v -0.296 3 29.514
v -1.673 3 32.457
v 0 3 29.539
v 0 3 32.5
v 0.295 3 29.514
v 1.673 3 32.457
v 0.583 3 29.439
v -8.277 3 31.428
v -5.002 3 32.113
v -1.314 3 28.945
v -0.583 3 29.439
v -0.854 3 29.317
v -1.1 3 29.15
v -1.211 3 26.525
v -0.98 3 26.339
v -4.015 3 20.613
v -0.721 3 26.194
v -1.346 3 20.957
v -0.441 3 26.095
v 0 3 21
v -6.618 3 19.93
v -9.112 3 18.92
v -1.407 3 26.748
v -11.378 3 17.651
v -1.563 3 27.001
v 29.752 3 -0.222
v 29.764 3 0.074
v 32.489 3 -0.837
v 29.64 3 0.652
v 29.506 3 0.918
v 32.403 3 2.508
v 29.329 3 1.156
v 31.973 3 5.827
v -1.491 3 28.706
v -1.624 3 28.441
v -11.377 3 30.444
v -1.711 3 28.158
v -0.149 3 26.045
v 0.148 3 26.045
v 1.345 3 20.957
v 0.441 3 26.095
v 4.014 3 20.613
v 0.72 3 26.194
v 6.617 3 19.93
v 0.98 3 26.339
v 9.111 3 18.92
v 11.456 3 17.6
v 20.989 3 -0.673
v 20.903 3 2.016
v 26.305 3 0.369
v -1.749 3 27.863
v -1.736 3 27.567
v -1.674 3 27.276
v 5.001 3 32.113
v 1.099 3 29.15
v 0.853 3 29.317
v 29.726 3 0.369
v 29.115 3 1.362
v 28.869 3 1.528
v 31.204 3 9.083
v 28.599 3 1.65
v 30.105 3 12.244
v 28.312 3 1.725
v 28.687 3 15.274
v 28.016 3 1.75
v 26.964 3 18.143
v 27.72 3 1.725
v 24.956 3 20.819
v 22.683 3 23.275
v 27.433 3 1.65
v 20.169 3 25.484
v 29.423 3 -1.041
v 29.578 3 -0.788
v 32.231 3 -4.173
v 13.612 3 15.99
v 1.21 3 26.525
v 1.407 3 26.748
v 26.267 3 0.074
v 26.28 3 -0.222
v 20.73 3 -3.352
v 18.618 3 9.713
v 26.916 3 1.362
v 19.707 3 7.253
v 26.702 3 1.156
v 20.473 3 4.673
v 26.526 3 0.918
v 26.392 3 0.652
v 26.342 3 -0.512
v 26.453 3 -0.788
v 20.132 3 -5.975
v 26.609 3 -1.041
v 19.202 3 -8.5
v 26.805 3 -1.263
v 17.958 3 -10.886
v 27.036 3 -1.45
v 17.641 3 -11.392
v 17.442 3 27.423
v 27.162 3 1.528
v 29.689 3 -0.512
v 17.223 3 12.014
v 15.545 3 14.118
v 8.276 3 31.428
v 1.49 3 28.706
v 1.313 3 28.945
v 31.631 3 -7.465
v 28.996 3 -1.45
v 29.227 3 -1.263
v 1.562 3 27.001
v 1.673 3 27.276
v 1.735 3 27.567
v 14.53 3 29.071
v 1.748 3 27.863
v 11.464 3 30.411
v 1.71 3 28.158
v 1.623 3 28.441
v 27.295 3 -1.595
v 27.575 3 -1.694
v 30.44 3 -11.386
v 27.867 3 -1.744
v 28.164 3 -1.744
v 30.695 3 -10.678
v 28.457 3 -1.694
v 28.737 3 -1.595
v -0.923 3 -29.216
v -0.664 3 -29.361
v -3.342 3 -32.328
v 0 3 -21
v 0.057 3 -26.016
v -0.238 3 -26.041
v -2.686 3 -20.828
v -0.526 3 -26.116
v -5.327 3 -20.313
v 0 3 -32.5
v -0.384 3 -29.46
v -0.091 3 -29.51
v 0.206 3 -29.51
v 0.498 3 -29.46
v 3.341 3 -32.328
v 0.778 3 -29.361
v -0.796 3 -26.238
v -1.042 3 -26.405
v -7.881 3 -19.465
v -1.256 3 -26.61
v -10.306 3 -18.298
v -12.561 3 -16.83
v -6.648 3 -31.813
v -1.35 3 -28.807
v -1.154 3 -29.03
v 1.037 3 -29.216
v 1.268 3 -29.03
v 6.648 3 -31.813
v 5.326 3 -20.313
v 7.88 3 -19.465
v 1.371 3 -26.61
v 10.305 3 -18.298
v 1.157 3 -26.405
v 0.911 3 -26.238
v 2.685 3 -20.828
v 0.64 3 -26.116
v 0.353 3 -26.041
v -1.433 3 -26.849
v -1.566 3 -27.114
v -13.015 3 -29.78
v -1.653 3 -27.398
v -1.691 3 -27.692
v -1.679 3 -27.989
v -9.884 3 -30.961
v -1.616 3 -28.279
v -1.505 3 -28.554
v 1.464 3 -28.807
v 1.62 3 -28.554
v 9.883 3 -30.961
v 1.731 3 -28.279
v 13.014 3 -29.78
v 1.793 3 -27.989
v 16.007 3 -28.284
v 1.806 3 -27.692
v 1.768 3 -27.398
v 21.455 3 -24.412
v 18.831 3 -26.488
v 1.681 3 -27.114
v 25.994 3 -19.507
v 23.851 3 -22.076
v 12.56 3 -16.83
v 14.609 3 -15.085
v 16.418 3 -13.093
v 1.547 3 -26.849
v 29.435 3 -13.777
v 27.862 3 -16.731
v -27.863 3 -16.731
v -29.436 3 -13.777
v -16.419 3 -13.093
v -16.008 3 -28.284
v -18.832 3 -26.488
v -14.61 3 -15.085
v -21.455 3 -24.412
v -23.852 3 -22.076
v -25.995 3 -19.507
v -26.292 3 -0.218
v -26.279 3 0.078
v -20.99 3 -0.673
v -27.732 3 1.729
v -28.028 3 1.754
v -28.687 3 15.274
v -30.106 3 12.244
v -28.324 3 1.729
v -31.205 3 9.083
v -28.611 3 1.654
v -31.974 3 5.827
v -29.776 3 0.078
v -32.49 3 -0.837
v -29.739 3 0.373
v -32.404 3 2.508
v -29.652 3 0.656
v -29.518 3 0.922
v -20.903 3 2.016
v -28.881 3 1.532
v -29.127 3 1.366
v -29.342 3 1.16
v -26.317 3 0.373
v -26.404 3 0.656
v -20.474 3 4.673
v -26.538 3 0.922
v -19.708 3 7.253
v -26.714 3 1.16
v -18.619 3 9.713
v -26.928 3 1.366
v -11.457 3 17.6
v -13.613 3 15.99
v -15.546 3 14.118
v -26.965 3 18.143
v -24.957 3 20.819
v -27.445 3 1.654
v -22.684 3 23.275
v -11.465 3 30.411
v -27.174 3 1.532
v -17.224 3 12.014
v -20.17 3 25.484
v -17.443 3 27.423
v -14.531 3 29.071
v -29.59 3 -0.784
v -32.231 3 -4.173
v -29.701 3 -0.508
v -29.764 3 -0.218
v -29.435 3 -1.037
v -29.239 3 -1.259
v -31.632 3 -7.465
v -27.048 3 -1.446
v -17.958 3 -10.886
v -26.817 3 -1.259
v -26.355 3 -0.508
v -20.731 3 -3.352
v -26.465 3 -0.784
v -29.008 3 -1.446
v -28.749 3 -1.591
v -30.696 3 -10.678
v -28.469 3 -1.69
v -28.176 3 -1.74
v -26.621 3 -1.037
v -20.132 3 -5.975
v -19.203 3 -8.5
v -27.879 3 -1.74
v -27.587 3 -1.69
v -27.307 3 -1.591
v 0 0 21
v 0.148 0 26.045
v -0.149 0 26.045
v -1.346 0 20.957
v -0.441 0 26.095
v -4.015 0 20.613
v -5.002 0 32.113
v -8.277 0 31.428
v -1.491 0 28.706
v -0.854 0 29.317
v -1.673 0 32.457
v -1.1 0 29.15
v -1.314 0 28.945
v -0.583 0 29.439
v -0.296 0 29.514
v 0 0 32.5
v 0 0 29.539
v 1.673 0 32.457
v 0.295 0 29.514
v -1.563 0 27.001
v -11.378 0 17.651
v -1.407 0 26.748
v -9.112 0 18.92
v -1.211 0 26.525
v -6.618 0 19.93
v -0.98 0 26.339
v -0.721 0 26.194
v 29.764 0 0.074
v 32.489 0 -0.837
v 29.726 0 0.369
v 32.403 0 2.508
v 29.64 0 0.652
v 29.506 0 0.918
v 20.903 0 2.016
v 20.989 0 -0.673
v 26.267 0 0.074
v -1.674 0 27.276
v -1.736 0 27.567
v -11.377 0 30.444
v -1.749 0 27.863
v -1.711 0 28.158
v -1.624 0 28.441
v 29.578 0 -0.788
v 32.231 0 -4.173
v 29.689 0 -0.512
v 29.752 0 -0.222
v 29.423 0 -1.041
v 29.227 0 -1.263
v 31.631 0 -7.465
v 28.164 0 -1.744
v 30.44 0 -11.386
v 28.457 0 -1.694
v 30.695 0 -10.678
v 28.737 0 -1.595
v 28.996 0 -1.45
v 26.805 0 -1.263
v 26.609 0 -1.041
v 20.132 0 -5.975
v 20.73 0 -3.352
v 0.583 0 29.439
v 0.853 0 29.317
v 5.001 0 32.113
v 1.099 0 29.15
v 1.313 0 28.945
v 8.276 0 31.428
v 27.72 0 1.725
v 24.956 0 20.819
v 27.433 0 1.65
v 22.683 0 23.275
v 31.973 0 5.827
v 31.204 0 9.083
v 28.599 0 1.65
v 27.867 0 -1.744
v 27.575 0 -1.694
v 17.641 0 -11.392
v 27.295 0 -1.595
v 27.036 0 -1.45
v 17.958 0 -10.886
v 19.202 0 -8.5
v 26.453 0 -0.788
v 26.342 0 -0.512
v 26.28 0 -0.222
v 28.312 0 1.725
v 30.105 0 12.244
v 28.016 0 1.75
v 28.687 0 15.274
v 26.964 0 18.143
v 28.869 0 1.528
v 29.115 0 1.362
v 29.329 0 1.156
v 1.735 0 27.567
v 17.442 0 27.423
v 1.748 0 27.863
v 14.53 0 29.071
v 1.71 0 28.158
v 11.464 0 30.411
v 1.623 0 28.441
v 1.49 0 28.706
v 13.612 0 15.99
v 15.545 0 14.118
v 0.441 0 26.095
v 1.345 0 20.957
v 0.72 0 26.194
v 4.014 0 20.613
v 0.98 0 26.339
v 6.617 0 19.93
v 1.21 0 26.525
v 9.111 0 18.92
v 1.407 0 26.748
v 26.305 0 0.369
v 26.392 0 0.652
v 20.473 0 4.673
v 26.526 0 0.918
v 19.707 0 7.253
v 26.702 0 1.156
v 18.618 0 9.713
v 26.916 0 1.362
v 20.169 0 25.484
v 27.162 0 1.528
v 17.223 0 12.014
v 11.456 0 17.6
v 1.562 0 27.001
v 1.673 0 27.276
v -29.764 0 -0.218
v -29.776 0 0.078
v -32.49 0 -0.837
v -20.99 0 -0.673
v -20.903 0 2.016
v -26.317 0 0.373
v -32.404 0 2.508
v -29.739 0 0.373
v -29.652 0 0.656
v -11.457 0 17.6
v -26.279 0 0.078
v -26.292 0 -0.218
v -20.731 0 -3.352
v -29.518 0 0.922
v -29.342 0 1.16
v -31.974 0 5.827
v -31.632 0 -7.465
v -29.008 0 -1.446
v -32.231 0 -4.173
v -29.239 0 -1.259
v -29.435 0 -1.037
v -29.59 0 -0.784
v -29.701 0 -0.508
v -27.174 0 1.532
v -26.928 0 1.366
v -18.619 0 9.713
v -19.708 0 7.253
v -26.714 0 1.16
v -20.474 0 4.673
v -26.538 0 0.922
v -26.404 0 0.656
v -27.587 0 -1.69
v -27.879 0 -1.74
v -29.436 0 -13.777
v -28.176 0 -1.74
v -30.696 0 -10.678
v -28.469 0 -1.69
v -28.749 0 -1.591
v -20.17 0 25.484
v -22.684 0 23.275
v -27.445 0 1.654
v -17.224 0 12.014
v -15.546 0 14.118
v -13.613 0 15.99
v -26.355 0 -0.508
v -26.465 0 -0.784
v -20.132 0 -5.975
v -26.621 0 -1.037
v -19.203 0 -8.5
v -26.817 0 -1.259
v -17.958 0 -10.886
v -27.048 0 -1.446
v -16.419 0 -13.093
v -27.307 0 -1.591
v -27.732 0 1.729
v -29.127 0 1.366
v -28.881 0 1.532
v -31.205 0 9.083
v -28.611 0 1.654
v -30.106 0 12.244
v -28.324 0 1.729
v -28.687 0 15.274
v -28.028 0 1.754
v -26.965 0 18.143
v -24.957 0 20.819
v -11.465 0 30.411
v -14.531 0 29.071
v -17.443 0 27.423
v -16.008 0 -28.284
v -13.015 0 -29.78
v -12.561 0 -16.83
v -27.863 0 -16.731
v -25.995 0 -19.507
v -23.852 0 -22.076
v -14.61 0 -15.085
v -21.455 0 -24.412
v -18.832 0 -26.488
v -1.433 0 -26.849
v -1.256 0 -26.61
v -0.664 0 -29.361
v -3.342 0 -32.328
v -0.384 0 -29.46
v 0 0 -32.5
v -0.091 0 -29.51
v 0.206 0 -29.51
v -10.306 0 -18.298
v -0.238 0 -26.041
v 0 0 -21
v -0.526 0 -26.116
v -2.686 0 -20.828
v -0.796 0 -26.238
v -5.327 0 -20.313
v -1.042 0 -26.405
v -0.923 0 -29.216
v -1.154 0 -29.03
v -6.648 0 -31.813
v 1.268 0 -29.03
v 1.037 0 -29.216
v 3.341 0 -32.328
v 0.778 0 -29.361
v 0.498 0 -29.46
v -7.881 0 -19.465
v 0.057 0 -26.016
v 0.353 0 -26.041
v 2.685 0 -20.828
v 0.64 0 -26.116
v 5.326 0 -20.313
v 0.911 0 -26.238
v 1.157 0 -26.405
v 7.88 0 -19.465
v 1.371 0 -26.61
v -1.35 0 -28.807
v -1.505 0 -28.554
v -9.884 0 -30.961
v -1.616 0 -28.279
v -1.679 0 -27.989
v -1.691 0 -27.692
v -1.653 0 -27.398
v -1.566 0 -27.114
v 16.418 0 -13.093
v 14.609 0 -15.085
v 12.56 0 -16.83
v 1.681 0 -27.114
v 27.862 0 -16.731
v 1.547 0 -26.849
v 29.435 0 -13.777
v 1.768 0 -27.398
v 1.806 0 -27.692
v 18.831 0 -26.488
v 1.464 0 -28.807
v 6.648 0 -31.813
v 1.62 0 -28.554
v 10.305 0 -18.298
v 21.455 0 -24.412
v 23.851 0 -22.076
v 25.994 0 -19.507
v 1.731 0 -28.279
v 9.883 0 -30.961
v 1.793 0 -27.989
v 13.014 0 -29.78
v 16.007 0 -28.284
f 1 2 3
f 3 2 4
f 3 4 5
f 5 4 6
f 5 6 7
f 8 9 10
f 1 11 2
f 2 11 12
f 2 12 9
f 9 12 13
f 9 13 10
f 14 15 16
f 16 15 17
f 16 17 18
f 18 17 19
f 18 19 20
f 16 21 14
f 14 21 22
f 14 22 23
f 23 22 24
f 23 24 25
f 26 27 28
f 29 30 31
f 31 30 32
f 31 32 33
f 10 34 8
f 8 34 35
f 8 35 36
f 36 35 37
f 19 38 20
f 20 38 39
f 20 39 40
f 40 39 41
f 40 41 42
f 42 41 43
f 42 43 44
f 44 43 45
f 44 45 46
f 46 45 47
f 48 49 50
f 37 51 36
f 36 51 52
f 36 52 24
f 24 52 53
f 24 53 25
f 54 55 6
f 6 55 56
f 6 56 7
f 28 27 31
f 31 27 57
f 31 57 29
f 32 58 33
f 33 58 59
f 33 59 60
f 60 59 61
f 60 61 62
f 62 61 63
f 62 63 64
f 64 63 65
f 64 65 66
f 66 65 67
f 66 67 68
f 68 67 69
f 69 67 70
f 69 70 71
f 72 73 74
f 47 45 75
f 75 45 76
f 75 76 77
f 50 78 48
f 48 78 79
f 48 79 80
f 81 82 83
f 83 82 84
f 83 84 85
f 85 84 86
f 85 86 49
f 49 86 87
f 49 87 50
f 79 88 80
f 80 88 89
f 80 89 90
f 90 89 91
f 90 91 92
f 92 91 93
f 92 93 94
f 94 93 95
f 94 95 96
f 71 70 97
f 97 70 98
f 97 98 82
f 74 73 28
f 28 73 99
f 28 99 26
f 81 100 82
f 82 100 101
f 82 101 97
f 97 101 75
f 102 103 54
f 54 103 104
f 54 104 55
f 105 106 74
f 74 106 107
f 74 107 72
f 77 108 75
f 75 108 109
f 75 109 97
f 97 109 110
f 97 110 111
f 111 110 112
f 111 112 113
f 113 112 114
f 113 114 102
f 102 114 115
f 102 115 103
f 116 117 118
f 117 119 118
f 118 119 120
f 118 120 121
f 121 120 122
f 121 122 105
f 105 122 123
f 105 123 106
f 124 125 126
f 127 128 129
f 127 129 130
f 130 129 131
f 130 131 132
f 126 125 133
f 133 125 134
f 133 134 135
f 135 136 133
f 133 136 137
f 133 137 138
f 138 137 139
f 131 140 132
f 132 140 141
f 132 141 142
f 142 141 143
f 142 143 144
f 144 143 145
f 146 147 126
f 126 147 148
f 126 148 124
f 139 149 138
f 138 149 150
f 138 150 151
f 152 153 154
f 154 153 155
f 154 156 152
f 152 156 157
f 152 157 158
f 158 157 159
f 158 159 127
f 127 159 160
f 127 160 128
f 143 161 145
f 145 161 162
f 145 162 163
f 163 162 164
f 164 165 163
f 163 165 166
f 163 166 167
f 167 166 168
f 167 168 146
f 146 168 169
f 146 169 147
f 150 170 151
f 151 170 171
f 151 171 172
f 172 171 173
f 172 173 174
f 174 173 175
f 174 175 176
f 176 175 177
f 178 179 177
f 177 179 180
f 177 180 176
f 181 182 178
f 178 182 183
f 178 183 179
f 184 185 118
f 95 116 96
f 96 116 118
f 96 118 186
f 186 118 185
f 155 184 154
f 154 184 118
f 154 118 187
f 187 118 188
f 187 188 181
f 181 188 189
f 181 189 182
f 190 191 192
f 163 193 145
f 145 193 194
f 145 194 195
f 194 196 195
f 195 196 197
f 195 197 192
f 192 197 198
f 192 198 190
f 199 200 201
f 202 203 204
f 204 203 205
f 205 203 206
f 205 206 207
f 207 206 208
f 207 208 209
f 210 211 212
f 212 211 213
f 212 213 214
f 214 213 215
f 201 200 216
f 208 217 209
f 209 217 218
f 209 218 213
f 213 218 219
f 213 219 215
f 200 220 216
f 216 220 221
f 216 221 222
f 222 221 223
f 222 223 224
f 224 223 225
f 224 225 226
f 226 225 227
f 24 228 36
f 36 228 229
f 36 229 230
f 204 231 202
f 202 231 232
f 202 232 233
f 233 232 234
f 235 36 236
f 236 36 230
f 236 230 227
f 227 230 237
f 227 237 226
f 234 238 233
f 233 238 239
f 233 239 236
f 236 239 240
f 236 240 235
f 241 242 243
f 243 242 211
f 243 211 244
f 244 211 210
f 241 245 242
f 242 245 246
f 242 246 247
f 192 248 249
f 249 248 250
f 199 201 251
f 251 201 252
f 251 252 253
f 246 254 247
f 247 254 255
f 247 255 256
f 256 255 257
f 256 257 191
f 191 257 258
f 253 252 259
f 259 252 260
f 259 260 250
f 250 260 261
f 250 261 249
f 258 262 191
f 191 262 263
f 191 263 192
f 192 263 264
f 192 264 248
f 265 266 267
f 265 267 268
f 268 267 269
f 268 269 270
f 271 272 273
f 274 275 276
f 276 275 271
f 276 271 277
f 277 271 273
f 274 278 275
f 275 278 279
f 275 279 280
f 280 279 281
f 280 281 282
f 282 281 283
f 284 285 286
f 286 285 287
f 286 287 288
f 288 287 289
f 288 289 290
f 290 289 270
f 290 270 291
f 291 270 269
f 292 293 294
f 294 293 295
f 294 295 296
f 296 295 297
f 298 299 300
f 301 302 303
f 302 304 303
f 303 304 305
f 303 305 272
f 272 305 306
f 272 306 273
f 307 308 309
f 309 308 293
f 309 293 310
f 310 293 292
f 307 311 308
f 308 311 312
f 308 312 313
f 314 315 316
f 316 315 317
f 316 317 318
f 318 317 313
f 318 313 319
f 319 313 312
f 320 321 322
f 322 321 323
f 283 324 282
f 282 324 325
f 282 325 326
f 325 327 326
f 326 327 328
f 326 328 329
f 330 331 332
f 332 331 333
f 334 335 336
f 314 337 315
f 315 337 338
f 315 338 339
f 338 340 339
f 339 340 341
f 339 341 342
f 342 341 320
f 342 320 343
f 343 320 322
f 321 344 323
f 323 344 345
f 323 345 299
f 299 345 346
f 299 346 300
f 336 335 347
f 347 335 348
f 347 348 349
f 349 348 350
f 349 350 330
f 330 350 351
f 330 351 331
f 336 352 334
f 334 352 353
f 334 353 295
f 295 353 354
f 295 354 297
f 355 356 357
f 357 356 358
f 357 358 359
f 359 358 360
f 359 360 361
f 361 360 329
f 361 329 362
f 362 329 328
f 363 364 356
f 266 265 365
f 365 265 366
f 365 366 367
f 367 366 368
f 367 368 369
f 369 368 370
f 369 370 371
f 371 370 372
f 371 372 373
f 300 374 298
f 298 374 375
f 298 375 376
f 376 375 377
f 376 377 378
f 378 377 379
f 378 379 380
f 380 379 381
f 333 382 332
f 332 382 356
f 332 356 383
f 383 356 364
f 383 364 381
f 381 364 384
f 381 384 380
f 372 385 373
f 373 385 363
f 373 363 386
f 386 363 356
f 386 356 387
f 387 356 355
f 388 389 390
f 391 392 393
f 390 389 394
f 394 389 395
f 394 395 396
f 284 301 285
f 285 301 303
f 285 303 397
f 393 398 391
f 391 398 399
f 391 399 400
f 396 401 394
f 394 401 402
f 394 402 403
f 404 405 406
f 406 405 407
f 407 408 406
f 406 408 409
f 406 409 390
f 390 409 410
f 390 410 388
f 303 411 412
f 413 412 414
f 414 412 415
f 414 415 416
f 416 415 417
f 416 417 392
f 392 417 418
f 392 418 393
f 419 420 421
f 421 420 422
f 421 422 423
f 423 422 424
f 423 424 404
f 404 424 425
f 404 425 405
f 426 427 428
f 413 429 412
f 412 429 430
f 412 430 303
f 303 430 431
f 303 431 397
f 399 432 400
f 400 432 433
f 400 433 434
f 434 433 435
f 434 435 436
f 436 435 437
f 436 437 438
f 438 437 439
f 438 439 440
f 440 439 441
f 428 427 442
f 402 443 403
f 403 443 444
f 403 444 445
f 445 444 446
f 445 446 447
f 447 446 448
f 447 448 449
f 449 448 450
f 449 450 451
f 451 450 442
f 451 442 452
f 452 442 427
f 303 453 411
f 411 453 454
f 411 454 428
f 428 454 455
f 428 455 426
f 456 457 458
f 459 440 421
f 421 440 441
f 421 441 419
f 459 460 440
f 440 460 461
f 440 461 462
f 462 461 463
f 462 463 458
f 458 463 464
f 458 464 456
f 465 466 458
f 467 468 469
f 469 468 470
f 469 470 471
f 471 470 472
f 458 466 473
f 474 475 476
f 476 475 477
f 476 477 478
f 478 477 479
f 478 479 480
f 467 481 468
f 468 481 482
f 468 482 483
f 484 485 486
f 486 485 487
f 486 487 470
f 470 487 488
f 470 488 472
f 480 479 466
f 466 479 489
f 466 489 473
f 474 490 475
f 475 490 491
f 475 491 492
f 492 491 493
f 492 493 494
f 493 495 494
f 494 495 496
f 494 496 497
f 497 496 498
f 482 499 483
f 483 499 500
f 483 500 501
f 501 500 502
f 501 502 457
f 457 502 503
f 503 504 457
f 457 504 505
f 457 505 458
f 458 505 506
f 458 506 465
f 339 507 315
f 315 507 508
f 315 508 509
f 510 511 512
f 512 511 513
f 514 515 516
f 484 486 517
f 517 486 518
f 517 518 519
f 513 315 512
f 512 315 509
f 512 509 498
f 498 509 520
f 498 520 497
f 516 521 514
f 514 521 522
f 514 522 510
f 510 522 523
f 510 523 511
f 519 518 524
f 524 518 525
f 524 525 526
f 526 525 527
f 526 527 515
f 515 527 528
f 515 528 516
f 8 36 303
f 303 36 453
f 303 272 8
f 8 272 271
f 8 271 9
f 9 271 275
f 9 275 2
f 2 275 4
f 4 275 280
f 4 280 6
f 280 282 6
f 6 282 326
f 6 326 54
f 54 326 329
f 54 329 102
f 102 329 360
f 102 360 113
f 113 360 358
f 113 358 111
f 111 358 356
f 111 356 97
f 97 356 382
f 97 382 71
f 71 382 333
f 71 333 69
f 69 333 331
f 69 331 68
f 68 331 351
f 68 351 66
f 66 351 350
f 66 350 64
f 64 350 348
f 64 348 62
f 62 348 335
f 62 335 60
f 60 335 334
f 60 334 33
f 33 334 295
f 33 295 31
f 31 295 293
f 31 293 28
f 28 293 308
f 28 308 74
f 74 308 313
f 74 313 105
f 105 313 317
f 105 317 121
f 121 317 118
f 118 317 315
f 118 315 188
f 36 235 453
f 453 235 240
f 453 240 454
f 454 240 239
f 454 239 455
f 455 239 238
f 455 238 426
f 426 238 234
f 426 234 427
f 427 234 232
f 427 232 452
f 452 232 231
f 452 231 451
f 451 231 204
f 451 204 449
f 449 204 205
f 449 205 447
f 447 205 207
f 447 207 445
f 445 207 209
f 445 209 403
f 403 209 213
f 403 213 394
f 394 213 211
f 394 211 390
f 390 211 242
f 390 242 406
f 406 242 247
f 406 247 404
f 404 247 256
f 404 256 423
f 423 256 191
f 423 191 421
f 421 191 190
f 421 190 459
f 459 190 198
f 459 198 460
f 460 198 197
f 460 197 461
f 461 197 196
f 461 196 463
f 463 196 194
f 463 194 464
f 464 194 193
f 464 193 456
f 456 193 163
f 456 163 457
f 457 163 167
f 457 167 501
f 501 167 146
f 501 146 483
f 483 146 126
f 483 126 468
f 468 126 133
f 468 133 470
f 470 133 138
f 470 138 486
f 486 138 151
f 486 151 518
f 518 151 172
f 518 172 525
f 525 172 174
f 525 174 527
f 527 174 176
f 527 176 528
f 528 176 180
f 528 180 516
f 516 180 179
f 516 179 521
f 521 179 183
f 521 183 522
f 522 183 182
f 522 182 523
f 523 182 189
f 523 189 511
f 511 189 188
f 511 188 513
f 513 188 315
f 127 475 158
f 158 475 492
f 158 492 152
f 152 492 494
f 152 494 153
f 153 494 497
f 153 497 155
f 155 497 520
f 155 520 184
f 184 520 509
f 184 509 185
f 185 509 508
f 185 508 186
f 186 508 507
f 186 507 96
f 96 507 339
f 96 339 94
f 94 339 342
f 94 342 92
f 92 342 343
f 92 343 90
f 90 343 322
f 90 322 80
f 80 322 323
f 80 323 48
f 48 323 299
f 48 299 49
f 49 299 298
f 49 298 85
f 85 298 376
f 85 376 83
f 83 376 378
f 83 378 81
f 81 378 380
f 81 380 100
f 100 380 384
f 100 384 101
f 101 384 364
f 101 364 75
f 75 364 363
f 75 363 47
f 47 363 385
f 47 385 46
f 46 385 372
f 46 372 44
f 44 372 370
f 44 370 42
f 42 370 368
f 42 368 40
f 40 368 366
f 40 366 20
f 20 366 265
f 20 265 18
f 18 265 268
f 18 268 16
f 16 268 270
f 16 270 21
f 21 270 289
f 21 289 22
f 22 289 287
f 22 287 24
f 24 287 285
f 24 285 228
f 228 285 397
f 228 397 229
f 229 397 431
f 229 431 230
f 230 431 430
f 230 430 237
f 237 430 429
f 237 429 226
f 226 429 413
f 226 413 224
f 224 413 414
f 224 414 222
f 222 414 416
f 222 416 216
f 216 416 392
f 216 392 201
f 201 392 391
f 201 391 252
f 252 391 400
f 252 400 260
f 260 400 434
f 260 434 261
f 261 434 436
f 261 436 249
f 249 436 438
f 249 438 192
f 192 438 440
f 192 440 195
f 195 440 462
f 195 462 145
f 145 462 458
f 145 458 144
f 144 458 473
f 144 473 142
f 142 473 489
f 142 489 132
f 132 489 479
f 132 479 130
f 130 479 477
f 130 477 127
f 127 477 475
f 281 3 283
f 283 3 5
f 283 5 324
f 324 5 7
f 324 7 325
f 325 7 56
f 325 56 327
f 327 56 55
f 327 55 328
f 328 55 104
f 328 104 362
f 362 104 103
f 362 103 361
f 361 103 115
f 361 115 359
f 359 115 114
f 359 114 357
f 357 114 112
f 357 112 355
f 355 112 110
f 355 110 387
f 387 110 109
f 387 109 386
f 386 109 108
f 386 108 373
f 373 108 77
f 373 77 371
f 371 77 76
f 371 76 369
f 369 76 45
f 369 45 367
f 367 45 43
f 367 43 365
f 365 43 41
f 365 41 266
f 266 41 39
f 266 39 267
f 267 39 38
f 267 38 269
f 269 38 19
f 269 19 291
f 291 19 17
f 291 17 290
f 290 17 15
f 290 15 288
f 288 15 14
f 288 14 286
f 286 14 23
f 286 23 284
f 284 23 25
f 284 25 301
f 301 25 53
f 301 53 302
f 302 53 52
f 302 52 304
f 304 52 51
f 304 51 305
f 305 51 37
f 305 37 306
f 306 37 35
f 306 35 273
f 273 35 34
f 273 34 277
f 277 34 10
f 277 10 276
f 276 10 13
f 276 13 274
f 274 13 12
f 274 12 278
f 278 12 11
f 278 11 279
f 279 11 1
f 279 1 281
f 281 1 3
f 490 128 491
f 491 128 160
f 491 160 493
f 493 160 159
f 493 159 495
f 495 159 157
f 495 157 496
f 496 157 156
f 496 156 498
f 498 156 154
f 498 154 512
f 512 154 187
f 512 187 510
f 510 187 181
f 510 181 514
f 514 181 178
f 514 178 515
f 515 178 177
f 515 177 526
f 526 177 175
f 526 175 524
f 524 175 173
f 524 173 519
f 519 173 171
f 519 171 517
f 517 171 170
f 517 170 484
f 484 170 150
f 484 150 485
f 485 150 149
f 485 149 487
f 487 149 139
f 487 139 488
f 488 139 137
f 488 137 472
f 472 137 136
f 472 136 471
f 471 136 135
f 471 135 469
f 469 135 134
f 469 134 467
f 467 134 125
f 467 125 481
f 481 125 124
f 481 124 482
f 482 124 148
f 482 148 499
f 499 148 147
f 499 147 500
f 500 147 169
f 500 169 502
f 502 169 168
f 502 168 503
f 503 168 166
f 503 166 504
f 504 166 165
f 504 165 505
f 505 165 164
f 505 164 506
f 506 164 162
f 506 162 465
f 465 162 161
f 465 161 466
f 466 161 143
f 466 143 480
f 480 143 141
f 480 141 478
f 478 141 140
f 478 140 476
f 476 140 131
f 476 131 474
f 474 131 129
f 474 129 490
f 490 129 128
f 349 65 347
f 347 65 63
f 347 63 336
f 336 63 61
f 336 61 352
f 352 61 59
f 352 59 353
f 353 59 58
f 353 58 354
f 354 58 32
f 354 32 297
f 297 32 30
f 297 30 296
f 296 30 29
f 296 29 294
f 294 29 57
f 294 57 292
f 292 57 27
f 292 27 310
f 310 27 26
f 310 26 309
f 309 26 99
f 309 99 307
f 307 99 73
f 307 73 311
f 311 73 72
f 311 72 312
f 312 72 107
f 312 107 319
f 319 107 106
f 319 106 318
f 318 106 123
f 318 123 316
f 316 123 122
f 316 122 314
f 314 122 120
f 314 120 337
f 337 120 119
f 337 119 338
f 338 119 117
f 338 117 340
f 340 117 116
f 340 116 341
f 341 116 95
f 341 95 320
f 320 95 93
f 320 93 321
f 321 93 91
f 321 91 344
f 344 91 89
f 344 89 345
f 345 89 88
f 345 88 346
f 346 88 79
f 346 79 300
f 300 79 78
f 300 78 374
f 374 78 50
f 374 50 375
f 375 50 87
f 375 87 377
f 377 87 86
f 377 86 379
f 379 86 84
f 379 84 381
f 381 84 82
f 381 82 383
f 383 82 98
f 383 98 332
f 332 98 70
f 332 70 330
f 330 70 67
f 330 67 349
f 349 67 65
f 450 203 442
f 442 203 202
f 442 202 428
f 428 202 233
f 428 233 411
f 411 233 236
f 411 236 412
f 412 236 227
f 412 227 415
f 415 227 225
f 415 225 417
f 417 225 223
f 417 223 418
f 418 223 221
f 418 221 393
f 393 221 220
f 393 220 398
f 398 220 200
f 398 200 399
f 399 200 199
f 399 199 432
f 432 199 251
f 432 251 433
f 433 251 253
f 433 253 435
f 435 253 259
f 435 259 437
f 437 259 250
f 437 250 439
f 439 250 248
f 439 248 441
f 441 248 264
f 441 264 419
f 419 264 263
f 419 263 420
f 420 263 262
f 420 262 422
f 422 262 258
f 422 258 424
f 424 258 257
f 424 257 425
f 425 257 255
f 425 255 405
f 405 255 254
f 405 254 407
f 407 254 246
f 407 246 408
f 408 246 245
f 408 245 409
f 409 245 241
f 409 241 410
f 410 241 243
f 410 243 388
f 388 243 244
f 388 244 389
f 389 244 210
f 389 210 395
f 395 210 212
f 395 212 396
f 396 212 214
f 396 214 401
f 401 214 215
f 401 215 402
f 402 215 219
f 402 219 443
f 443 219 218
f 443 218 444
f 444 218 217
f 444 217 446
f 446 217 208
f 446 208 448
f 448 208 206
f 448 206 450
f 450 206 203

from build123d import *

# Parameters (mm, degrees)
SKETCH1_R                = 32.5
SKETCH1_R_2              = 21
BOSS_EXTRUDE2_DEPTH      = 3
SKETCH2_R                = 1.75
CUT_EXTRUDE2_DEPTH       = 1
CUT_EXTRUDE2_DEPTH_BACK  = 4
SKETCH5_R                = 1.75
CUT_EXTRUDE4_DEPTH       = 1
CUT_EXTRUDE4_DEPTH_BACK  = 4
SKETCH13_R               = 1.75
CUT_EXTRUDE12_DEPTH      = 1
CUT_EXTRUDE12_DEPTH_BACK = 4


with BuildPart() as part:
    # Sketch1 → Boss-Extrude2 (new body)
    with BuildSketch(Plane(origin=(0, 0, 0), x_dir=(1, 0, 0), z_dir=(0, 1, 0))):
        Circle(SKETCH1_R)
        Circle(SKETCH1_R_2, mode=Mode.SUBTRACT)
    extrude(amount=BOSS_EXTRUDE2_DEPTH)

    # Sketch2 → Cut-Extrude2 (cut, two sides)
    with BuildSketch(Plane(origin=(0, 3, 0), x_dir=(1, 0, 0), z_dir=(0, 1, 0))) as cut_extrude2_sk:
        with Locations((0, -27.788884535)):
            Circle(SKETCH2_R)
    extrude(amount=CUT_EXTRUDE2_DEPTH, mode=Mode.SUBTRACT)
    extrude(cut_extrude2_sk.sketch, amount=-CUT_EXTRUDE2_DEPTH_BACK, mode=Mode.SUBTRACT)

    # Sketch5 → Cut-Extrude4 (cut, two sides)
    with BuildSketch(Plane(origin=(0, 3, 0), x_dir=(1, 0, 0), z_dir=(0, 1, 0))) as cut_extrude4_sk:
        with Locations((0.057759675, 27.766269398)):
            Circle(SKETCH5_R)
    extrude(amount=CUT_EXTRUDE4_DEPTH, mode=Mode.SUBTRACT)
    extrude(cut_extrude4_sk.sketch, amount=-CUT_EXTRUDE4_DEPTH_BACK, mode=Mode.SUBTRACT)

    # Sketch13 → Cut-Extrude12 (cut, two sides)
    with BuildSketch(Plane(origin=(0, 3, 0), x_dir=(1, 0, 0), z_dir=(0, 1, 0))) as cut_extrude12_sk:
        with Locations((-28.027387252, -0.003979104)):
            Circle(SKETCH13_R)
        with Locations((28.01619309, 0)):
            Circle(SKETCH13_R)
    extrude(amount=CUT_EXTRUDE12_DEPTH, mode=Mode.SUBTRACT)
    extrude(cut_extrude12_sk.sketch, amount=-CUT_EXTRUDE12_DEPTH_BACK, mode=Mode.SUBTRACT)


solid = part.part
